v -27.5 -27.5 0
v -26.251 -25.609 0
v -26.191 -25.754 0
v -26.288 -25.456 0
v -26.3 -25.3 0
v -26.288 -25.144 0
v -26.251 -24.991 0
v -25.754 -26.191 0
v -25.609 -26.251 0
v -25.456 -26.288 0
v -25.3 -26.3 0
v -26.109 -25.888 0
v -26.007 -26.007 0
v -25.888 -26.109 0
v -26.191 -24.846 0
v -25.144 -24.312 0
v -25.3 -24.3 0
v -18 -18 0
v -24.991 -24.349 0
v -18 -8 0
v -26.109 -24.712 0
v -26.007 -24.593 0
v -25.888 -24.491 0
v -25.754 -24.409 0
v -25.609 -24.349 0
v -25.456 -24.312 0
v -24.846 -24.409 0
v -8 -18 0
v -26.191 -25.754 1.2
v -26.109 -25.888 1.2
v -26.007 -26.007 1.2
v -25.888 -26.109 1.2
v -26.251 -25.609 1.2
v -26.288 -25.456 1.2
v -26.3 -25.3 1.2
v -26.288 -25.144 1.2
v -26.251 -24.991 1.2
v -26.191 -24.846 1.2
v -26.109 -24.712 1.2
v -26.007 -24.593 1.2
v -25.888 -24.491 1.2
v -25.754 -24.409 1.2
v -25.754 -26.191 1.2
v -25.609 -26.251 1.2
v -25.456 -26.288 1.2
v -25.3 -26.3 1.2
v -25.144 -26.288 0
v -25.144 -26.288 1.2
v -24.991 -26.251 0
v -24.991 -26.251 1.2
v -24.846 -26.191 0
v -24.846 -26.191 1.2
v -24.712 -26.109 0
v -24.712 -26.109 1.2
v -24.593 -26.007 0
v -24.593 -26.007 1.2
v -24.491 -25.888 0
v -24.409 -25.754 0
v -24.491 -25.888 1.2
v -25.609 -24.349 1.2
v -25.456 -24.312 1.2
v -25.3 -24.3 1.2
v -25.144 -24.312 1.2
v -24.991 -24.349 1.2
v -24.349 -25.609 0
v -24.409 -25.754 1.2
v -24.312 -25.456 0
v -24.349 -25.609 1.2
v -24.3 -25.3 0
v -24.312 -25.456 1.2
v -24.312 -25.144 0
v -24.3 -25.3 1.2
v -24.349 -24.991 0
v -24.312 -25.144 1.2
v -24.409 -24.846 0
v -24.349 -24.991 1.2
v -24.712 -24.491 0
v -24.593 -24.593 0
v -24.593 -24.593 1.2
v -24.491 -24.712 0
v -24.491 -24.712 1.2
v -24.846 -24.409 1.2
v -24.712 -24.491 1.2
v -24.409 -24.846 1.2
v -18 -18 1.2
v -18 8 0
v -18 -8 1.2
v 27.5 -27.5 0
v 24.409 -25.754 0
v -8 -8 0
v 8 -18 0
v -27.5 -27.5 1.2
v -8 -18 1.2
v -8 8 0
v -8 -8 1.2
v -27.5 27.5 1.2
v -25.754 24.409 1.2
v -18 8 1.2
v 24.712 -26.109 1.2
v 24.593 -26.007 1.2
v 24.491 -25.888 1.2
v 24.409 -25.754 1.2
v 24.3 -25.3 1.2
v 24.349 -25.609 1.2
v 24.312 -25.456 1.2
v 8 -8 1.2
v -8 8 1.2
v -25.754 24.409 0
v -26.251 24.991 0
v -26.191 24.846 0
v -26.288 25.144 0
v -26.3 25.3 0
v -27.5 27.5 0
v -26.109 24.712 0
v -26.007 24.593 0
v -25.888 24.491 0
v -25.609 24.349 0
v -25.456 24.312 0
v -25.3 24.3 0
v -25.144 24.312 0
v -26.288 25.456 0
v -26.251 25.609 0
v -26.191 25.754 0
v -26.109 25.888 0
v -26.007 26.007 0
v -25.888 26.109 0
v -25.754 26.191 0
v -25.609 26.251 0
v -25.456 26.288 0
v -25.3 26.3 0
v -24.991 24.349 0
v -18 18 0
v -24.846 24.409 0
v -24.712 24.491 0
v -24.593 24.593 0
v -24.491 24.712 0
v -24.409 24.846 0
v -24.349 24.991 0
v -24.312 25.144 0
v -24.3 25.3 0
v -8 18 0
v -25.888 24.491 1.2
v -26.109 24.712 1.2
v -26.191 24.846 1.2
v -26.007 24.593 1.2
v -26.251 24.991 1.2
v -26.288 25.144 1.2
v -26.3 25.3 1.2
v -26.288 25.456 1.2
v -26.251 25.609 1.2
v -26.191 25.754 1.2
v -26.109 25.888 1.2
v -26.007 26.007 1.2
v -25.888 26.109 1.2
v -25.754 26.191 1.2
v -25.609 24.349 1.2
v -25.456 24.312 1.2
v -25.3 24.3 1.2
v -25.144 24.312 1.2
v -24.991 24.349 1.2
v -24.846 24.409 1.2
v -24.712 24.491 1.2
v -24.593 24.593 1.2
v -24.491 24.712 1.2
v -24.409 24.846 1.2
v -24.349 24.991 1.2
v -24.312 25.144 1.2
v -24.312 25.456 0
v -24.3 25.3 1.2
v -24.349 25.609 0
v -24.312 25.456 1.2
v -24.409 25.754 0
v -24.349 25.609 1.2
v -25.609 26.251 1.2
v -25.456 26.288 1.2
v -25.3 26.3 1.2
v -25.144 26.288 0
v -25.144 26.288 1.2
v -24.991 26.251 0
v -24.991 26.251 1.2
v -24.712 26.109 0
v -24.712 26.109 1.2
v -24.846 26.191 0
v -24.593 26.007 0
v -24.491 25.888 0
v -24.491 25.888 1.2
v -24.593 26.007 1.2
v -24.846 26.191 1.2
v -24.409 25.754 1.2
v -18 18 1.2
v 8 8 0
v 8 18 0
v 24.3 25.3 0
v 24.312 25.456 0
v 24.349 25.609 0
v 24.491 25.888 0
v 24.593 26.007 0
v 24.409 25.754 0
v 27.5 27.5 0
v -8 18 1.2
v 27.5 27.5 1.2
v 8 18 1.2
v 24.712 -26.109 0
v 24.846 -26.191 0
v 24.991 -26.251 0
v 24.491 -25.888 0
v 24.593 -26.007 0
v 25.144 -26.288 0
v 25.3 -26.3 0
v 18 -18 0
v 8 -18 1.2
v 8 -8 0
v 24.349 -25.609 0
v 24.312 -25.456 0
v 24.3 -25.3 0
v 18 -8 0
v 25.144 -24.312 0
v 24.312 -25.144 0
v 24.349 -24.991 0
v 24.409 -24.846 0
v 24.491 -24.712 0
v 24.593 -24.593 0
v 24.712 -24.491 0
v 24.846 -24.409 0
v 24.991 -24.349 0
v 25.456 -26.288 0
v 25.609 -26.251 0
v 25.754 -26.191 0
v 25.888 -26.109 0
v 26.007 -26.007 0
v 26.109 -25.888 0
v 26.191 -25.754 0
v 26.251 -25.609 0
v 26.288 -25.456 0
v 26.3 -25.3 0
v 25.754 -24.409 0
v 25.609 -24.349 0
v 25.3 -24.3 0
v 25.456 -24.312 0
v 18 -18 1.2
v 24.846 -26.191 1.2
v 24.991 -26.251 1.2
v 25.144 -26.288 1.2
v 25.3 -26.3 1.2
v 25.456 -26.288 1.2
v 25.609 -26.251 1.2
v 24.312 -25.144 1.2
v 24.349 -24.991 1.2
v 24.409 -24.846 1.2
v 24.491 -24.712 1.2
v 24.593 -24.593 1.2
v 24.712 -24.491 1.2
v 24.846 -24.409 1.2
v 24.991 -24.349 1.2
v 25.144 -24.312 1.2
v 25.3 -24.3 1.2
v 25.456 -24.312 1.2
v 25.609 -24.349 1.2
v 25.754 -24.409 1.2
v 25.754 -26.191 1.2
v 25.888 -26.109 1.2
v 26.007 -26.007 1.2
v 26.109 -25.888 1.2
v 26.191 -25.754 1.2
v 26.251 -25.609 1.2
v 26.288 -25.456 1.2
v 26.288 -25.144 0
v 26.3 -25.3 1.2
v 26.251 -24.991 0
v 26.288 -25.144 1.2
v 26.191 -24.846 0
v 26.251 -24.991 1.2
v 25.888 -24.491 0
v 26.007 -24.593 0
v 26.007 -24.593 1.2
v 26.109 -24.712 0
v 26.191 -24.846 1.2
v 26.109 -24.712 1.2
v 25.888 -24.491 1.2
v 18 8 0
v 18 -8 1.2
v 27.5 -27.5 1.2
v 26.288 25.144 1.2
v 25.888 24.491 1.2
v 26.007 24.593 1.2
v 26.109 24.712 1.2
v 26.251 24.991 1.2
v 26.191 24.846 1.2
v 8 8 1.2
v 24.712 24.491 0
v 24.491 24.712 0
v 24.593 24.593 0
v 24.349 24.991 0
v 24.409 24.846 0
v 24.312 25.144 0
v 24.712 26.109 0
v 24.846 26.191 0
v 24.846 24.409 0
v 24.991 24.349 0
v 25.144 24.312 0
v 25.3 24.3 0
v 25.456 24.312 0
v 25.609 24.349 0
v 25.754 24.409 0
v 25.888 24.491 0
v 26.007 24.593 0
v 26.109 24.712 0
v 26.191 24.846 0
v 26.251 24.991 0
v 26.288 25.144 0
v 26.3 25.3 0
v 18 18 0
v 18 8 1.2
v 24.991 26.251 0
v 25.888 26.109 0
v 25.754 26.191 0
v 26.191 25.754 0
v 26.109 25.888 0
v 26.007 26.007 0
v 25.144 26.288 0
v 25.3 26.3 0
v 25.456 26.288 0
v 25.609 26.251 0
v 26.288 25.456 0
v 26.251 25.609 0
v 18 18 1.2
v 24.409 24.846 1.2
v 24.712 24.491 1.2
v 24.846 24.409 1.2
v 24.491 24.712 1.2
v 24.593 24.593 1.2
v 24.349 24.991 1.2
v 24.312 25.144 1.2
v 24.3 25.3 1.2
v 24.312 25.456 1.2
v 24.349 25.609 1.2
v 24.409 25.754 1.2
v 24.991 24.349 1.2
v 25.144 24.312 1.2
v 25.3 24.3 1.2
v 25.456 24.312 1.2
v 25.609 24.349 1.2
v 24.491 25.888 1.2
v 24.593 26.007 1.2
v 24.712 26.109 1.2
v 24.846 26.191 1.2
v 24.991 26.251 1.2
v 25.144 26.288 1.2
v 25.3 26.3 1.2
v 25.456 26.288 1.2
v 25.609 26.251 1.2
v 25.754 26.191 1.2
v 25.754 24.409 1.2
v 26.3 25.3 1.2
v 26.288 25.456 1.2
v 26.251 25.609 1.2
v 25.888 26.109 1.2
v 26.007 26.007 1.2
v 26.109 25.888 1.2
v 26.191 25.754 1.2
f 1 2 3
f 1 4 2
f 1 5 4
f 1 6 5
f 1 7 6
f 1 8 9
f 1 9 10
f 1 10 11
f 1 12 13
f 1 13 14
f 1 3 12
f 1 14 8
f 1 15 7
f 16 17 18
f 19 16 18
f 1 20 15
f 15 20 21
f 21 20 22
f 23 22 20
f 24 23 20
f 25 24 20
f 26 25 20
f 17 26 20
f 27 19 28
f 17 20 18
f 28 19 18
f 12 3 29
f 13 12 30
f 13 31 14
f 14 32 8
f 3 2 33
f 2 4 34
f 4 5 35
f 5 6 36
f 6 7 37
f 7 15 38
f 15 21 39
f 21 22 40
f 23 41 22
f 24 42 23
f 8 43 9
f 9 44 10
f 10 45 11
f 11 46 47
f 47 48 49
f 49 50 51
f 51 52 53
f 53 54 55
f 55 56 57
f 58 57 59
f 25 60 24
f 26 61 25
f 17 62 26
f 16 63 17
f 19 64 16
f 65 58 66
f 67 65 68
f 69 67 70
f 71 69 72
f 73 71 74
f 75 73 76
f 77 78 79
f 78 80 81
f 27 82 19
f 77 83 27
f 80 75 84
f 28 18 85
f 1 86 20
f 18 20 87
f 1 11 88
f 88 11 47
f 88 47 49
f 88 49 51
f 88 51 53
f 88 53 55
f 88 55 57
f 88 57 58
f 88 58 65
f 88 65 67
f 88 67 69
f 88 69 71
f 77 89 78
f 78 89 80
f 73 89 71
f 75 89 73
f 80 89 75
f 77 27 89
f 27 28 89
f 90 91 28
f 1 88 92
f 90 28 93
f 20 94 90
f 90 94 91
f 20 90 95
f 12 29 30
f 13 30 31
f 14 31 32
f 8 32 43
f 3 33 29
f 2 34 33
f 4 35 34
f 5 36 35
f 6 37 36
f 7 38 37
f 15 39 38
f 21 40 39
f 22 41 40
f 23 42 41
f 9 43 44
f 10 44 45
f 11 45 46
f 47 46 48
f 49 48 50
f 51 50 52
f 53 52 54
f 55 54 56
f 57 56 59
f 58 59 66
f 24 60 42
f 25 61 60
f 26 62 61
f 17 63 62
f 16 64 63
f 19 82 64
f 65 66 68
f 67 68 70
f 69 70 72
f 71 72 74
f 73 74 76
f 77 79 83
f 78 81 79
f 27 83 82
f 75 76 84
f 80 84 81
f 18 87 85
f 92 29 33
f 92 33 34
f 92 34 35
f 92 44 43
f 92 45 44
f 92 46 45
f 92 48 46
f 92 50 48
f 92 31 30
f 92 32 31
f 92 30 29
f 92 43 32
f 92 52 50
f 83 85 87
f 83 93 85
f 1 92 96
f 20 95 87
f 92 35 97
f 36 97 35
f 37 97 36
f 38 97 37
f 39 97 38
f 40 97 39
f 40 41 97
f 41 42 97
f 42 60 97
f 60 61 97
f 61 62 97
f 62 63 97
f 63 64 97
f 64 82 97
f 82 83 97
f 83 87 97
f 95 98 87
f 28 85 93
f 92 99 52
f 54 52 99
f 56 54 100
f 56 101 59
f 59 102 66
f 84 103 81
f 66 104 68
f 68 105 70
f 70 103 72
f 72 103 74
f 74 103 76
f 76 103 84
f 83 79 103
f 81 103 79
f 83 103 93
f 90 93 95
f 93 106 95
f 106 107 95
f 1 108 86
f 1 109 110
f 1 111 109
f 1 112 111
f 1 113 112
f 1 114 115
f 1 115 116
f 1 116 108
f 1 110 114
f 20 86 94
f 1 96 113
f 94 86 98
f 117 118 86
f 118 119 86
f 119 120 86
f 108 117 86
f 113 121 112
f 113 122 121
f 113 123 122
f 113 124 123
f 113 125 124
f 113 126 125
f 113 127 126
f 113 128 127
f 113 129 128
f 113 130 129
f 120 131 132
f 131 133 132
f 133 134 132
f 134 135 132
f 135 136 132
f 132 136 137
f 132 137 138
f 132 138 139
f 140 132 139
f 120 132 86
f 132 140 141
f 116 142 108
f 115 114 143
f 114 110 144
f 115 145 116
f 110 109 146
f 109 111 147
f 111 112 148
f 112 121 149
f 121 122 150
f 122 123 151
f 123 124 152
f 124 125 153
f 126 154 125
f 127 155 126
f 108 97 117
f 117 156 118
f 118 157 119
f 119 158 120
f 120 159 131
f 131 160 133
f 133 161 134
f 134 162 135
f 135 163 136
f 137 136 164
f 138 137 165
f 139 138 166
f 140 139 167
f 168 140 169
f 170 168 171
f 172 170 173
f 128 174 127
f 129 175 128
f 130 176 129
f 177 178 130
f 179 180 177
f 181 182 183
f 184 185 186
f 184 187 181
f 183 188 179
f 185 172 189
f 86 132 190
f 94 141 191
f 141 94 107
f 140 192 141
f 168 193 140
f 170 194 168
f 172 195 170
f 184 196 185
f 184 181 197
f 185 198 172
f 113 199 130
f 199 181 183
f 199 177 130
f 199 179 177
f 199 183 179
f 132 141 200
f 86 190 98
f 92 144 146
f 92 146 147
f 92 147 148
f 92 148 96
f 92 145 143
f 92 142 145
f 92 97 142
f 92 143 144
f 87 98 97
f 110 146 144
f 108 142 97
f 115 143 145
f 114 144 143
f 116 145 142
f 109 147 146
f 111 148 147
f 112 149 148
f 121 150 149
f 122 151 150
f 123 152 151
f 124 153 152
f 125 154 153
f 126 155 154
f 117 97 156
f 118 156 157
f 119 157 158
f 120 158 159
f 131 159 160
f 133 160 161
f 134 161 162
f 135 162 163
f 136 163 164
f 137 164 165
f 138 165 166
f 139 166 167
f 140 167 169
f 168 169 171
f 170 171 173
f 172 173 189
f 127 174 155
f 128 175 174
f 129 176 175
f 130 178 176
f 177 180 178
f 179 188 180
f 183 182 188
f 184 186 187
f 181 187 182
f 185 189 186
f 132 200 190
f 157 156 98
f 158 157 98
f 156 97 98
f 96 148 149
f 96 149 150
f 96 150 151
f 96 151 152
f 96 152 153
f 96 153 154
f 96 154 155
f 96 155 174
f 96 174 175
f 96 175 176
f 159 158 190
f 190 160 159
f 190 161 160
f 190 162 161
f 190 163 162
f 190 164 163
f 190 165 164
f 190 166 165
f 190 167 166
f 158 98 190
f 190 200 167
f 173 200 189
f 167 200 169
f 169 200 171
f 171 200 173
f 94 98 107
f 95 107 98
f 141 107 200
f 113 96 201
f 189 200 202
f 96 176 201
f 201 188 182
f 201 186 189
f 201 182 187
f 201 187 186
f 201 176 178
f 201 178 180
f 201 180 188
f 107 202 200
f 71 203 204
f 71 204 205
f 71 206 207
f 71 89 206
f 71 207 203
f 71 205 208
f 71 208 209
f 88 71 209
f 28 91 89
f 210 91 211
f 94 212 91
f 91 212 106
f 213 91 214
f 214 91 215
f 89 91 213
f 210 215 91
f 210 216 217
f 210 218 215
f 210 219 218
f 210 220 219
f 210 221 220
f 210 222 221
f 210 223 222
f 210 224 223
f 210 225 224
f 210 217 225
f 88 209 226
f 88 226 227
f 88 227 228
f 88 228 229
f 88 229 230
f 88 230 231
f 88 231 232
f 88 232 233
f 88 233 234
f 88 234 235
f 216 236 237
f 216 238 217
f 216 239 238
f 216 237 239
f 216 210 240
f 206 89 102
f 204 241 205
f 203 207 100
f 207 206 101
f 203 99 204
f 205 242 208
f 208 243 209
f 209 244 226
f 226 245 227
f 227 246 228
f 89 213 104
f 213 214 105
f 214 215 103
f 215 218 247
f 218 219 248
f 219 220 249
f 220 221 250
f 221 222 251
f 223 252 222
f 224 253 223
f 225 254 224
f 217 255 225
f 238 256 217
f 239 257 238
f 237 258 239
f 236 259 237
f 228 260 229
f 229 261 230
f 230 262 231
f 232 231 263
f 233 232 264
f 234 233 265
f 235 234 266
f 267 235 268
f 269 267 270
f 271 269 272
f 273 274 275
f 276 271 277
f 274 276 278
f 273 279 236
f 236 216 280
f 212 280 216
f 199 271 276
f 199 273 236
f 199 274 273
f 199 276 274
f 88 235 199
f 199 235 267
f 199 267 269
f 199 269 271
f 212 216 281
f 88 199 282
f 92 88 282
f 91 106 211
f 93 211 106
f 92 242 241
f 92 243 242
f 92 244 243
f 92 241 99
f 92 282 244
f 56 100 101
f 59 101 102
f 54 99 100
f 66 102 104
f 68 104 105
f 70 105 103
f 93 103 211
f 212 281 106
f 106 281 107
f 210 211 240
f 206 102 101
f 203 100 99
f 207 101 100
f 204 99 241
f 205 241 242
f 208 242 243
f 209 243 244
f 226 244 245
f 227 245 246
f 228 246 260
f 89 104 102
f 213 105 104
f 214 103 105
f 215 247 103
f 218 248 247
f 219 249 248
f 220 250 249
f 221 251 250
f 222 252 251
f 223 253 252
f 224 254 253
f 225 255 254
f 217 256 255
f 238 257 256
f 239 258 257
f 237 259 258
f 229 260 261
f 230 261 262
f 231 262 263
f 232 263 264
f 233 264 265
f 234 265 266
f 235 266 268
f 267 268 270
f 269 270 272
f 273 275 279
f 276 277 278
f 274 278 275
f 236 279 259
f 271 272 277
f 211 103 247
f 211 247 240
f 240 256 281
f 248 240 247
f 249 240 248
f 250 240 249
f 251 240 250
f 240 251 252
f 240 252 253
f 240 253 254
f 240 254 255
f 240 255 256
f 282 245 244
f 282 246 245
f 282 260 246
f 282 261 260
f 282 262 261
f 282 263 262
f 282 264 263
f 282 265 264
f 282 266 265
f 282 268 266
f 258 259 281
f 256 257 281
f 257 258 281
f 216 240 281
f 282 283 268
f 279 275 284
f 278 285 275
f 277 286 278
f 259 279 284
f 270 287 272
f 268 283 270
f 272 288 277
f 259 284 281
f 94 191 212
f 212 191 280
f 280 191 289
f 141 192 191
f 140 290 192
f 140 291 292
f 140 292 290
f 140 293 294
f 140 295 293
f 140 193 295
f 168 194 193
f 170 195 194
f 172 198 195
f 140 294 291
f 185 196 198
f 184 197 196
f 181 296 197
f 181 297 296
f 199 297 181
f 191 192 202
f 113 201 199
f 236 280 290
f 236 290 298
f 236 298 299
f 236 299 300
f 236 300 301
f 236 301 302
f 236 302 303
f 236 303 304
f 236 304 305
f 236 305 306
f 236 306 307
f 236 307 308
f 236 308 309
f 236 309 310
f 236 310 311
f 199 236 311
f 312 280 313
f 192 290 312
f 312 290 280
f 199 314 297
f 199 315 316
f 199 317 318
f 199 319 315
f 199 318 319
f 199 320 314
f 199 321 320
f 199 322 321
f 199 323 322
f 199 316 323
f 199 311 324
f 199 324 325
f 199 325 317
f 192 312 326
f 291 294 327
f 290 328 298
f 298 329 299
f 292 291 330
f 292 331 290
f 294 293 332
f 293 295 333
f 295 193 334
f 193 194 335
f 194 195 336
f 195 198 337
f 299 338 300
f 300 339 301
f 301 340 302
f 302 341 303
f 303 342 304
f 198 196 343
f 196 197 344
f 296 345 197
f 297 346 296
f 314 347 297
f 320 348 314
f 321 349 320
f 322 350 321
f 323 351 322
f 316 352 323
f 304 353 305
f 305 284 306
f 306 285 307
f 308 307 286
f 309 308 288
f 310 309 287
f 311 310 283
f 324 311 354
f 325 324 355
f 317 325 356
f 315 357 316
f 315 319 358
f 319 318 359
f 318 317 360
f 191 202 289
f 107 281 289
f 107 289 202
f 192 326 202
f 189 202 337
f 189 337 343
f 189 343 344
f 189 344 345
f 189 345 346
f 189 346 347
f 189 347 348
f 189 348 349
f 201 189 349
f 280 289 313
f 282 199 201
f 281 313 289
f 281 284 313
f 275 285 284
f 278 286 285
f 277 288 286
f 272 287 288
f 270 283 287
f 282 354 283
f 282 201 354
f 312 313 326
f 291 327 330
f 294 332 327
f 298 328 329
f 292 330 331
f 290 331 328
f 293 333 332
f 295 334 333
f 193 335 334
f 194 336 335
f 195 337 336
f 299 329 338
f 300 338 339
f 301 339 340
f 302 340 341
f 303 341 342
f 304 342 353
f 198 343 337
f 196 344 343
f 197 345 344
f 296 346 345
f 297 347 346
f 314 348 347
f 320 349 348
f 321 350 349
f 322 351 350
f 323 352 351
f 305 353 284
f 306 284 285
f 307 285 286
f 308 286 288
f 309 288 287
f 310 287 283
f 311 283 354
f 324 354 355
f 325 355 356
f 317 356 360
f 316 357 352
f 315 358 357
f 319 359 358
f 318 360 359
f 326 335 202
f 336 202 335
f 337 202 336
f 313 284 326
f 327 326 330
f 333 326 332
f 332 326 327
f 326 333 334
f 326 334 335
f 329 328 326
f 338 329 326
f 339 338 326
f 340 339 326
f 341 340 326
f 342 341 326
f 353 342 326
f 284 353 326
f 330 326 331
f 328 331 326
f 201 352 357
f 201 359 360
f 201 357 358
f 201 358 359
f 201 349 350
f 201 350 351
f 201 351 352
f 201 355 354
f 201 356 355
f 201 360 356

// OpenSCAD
// ============================================================
// 플랫폼 v2 - 윗면(덮개) 평면도(XY, 위에서 본 모습)
// 55mm x 55mm 정사각형 평판, 두께 1.2mm.
// 네 모서리에 지름 2mm 구멍 (바깥쪽 모서리에서 대각선 각 축 방향 2.2mm, platform_v2 바닥의
// 모서리 나사 보스 구멍과 동일한 위치).
// 그리고 4개의 10x10mm 정사각형 구멍 (바깥쪽 모서리에서 각 축 방향 9.5mm 지점이
// 사각형의 모서리가 되도록 배치).
// ============================================================

module platform_v2_top() {
    face_size = 55;   // 면의 가로/세로 (정사각형)
    plate_t   = 1.2;  // 덮개 두께

    screw_d  = 2;      // 나사 구멍 지름
    hole_gap = 1.2;    // 바깥쪽 모서리 - 구멍 중심까지의 각 축 성분
    hole_off = face_size / 2 - hole_gap - screw_d / 2; // 중심까지 거리 (=25.3mm)

    sq_size    = 10;   // 정사각형 구멍 한 변
    sq_corner  = 9.5;  // 바깥쪽 모서리 - 사각형 모서리까지 각 축 거리
    sq_off     = face_size / 2 - sq_corner - sq_size / 2; // 중심까지 거리 (=13mm)

    echo("[PlatformV2Top] hole_off =", hole_off);
    echo("[PlatformV2Top] sq_off =", sq_off);

    color("gray")
        difference() {
            linear_extrude(height = plate_t)
                square([face_size, face_size], center = true);

            for (sx = [-1, 1])
                for (sy = [-1, 1])
                    translate([sx * hole_off, sy * hole_off, -0.1])
                        cylinder(d = screw_d, h = plate_t + 0.2, $fn = 40);

            for (sx = [-1, 1])
                for (sy = [-1, 1])
                    translate([sx * sq_off, sy * sq_off, -0.1])
                        linear_extrude(height = plate_t + 0.2)
                            square([sq_size, sq_size], center = true);
        }
}

platform_v2_top();
